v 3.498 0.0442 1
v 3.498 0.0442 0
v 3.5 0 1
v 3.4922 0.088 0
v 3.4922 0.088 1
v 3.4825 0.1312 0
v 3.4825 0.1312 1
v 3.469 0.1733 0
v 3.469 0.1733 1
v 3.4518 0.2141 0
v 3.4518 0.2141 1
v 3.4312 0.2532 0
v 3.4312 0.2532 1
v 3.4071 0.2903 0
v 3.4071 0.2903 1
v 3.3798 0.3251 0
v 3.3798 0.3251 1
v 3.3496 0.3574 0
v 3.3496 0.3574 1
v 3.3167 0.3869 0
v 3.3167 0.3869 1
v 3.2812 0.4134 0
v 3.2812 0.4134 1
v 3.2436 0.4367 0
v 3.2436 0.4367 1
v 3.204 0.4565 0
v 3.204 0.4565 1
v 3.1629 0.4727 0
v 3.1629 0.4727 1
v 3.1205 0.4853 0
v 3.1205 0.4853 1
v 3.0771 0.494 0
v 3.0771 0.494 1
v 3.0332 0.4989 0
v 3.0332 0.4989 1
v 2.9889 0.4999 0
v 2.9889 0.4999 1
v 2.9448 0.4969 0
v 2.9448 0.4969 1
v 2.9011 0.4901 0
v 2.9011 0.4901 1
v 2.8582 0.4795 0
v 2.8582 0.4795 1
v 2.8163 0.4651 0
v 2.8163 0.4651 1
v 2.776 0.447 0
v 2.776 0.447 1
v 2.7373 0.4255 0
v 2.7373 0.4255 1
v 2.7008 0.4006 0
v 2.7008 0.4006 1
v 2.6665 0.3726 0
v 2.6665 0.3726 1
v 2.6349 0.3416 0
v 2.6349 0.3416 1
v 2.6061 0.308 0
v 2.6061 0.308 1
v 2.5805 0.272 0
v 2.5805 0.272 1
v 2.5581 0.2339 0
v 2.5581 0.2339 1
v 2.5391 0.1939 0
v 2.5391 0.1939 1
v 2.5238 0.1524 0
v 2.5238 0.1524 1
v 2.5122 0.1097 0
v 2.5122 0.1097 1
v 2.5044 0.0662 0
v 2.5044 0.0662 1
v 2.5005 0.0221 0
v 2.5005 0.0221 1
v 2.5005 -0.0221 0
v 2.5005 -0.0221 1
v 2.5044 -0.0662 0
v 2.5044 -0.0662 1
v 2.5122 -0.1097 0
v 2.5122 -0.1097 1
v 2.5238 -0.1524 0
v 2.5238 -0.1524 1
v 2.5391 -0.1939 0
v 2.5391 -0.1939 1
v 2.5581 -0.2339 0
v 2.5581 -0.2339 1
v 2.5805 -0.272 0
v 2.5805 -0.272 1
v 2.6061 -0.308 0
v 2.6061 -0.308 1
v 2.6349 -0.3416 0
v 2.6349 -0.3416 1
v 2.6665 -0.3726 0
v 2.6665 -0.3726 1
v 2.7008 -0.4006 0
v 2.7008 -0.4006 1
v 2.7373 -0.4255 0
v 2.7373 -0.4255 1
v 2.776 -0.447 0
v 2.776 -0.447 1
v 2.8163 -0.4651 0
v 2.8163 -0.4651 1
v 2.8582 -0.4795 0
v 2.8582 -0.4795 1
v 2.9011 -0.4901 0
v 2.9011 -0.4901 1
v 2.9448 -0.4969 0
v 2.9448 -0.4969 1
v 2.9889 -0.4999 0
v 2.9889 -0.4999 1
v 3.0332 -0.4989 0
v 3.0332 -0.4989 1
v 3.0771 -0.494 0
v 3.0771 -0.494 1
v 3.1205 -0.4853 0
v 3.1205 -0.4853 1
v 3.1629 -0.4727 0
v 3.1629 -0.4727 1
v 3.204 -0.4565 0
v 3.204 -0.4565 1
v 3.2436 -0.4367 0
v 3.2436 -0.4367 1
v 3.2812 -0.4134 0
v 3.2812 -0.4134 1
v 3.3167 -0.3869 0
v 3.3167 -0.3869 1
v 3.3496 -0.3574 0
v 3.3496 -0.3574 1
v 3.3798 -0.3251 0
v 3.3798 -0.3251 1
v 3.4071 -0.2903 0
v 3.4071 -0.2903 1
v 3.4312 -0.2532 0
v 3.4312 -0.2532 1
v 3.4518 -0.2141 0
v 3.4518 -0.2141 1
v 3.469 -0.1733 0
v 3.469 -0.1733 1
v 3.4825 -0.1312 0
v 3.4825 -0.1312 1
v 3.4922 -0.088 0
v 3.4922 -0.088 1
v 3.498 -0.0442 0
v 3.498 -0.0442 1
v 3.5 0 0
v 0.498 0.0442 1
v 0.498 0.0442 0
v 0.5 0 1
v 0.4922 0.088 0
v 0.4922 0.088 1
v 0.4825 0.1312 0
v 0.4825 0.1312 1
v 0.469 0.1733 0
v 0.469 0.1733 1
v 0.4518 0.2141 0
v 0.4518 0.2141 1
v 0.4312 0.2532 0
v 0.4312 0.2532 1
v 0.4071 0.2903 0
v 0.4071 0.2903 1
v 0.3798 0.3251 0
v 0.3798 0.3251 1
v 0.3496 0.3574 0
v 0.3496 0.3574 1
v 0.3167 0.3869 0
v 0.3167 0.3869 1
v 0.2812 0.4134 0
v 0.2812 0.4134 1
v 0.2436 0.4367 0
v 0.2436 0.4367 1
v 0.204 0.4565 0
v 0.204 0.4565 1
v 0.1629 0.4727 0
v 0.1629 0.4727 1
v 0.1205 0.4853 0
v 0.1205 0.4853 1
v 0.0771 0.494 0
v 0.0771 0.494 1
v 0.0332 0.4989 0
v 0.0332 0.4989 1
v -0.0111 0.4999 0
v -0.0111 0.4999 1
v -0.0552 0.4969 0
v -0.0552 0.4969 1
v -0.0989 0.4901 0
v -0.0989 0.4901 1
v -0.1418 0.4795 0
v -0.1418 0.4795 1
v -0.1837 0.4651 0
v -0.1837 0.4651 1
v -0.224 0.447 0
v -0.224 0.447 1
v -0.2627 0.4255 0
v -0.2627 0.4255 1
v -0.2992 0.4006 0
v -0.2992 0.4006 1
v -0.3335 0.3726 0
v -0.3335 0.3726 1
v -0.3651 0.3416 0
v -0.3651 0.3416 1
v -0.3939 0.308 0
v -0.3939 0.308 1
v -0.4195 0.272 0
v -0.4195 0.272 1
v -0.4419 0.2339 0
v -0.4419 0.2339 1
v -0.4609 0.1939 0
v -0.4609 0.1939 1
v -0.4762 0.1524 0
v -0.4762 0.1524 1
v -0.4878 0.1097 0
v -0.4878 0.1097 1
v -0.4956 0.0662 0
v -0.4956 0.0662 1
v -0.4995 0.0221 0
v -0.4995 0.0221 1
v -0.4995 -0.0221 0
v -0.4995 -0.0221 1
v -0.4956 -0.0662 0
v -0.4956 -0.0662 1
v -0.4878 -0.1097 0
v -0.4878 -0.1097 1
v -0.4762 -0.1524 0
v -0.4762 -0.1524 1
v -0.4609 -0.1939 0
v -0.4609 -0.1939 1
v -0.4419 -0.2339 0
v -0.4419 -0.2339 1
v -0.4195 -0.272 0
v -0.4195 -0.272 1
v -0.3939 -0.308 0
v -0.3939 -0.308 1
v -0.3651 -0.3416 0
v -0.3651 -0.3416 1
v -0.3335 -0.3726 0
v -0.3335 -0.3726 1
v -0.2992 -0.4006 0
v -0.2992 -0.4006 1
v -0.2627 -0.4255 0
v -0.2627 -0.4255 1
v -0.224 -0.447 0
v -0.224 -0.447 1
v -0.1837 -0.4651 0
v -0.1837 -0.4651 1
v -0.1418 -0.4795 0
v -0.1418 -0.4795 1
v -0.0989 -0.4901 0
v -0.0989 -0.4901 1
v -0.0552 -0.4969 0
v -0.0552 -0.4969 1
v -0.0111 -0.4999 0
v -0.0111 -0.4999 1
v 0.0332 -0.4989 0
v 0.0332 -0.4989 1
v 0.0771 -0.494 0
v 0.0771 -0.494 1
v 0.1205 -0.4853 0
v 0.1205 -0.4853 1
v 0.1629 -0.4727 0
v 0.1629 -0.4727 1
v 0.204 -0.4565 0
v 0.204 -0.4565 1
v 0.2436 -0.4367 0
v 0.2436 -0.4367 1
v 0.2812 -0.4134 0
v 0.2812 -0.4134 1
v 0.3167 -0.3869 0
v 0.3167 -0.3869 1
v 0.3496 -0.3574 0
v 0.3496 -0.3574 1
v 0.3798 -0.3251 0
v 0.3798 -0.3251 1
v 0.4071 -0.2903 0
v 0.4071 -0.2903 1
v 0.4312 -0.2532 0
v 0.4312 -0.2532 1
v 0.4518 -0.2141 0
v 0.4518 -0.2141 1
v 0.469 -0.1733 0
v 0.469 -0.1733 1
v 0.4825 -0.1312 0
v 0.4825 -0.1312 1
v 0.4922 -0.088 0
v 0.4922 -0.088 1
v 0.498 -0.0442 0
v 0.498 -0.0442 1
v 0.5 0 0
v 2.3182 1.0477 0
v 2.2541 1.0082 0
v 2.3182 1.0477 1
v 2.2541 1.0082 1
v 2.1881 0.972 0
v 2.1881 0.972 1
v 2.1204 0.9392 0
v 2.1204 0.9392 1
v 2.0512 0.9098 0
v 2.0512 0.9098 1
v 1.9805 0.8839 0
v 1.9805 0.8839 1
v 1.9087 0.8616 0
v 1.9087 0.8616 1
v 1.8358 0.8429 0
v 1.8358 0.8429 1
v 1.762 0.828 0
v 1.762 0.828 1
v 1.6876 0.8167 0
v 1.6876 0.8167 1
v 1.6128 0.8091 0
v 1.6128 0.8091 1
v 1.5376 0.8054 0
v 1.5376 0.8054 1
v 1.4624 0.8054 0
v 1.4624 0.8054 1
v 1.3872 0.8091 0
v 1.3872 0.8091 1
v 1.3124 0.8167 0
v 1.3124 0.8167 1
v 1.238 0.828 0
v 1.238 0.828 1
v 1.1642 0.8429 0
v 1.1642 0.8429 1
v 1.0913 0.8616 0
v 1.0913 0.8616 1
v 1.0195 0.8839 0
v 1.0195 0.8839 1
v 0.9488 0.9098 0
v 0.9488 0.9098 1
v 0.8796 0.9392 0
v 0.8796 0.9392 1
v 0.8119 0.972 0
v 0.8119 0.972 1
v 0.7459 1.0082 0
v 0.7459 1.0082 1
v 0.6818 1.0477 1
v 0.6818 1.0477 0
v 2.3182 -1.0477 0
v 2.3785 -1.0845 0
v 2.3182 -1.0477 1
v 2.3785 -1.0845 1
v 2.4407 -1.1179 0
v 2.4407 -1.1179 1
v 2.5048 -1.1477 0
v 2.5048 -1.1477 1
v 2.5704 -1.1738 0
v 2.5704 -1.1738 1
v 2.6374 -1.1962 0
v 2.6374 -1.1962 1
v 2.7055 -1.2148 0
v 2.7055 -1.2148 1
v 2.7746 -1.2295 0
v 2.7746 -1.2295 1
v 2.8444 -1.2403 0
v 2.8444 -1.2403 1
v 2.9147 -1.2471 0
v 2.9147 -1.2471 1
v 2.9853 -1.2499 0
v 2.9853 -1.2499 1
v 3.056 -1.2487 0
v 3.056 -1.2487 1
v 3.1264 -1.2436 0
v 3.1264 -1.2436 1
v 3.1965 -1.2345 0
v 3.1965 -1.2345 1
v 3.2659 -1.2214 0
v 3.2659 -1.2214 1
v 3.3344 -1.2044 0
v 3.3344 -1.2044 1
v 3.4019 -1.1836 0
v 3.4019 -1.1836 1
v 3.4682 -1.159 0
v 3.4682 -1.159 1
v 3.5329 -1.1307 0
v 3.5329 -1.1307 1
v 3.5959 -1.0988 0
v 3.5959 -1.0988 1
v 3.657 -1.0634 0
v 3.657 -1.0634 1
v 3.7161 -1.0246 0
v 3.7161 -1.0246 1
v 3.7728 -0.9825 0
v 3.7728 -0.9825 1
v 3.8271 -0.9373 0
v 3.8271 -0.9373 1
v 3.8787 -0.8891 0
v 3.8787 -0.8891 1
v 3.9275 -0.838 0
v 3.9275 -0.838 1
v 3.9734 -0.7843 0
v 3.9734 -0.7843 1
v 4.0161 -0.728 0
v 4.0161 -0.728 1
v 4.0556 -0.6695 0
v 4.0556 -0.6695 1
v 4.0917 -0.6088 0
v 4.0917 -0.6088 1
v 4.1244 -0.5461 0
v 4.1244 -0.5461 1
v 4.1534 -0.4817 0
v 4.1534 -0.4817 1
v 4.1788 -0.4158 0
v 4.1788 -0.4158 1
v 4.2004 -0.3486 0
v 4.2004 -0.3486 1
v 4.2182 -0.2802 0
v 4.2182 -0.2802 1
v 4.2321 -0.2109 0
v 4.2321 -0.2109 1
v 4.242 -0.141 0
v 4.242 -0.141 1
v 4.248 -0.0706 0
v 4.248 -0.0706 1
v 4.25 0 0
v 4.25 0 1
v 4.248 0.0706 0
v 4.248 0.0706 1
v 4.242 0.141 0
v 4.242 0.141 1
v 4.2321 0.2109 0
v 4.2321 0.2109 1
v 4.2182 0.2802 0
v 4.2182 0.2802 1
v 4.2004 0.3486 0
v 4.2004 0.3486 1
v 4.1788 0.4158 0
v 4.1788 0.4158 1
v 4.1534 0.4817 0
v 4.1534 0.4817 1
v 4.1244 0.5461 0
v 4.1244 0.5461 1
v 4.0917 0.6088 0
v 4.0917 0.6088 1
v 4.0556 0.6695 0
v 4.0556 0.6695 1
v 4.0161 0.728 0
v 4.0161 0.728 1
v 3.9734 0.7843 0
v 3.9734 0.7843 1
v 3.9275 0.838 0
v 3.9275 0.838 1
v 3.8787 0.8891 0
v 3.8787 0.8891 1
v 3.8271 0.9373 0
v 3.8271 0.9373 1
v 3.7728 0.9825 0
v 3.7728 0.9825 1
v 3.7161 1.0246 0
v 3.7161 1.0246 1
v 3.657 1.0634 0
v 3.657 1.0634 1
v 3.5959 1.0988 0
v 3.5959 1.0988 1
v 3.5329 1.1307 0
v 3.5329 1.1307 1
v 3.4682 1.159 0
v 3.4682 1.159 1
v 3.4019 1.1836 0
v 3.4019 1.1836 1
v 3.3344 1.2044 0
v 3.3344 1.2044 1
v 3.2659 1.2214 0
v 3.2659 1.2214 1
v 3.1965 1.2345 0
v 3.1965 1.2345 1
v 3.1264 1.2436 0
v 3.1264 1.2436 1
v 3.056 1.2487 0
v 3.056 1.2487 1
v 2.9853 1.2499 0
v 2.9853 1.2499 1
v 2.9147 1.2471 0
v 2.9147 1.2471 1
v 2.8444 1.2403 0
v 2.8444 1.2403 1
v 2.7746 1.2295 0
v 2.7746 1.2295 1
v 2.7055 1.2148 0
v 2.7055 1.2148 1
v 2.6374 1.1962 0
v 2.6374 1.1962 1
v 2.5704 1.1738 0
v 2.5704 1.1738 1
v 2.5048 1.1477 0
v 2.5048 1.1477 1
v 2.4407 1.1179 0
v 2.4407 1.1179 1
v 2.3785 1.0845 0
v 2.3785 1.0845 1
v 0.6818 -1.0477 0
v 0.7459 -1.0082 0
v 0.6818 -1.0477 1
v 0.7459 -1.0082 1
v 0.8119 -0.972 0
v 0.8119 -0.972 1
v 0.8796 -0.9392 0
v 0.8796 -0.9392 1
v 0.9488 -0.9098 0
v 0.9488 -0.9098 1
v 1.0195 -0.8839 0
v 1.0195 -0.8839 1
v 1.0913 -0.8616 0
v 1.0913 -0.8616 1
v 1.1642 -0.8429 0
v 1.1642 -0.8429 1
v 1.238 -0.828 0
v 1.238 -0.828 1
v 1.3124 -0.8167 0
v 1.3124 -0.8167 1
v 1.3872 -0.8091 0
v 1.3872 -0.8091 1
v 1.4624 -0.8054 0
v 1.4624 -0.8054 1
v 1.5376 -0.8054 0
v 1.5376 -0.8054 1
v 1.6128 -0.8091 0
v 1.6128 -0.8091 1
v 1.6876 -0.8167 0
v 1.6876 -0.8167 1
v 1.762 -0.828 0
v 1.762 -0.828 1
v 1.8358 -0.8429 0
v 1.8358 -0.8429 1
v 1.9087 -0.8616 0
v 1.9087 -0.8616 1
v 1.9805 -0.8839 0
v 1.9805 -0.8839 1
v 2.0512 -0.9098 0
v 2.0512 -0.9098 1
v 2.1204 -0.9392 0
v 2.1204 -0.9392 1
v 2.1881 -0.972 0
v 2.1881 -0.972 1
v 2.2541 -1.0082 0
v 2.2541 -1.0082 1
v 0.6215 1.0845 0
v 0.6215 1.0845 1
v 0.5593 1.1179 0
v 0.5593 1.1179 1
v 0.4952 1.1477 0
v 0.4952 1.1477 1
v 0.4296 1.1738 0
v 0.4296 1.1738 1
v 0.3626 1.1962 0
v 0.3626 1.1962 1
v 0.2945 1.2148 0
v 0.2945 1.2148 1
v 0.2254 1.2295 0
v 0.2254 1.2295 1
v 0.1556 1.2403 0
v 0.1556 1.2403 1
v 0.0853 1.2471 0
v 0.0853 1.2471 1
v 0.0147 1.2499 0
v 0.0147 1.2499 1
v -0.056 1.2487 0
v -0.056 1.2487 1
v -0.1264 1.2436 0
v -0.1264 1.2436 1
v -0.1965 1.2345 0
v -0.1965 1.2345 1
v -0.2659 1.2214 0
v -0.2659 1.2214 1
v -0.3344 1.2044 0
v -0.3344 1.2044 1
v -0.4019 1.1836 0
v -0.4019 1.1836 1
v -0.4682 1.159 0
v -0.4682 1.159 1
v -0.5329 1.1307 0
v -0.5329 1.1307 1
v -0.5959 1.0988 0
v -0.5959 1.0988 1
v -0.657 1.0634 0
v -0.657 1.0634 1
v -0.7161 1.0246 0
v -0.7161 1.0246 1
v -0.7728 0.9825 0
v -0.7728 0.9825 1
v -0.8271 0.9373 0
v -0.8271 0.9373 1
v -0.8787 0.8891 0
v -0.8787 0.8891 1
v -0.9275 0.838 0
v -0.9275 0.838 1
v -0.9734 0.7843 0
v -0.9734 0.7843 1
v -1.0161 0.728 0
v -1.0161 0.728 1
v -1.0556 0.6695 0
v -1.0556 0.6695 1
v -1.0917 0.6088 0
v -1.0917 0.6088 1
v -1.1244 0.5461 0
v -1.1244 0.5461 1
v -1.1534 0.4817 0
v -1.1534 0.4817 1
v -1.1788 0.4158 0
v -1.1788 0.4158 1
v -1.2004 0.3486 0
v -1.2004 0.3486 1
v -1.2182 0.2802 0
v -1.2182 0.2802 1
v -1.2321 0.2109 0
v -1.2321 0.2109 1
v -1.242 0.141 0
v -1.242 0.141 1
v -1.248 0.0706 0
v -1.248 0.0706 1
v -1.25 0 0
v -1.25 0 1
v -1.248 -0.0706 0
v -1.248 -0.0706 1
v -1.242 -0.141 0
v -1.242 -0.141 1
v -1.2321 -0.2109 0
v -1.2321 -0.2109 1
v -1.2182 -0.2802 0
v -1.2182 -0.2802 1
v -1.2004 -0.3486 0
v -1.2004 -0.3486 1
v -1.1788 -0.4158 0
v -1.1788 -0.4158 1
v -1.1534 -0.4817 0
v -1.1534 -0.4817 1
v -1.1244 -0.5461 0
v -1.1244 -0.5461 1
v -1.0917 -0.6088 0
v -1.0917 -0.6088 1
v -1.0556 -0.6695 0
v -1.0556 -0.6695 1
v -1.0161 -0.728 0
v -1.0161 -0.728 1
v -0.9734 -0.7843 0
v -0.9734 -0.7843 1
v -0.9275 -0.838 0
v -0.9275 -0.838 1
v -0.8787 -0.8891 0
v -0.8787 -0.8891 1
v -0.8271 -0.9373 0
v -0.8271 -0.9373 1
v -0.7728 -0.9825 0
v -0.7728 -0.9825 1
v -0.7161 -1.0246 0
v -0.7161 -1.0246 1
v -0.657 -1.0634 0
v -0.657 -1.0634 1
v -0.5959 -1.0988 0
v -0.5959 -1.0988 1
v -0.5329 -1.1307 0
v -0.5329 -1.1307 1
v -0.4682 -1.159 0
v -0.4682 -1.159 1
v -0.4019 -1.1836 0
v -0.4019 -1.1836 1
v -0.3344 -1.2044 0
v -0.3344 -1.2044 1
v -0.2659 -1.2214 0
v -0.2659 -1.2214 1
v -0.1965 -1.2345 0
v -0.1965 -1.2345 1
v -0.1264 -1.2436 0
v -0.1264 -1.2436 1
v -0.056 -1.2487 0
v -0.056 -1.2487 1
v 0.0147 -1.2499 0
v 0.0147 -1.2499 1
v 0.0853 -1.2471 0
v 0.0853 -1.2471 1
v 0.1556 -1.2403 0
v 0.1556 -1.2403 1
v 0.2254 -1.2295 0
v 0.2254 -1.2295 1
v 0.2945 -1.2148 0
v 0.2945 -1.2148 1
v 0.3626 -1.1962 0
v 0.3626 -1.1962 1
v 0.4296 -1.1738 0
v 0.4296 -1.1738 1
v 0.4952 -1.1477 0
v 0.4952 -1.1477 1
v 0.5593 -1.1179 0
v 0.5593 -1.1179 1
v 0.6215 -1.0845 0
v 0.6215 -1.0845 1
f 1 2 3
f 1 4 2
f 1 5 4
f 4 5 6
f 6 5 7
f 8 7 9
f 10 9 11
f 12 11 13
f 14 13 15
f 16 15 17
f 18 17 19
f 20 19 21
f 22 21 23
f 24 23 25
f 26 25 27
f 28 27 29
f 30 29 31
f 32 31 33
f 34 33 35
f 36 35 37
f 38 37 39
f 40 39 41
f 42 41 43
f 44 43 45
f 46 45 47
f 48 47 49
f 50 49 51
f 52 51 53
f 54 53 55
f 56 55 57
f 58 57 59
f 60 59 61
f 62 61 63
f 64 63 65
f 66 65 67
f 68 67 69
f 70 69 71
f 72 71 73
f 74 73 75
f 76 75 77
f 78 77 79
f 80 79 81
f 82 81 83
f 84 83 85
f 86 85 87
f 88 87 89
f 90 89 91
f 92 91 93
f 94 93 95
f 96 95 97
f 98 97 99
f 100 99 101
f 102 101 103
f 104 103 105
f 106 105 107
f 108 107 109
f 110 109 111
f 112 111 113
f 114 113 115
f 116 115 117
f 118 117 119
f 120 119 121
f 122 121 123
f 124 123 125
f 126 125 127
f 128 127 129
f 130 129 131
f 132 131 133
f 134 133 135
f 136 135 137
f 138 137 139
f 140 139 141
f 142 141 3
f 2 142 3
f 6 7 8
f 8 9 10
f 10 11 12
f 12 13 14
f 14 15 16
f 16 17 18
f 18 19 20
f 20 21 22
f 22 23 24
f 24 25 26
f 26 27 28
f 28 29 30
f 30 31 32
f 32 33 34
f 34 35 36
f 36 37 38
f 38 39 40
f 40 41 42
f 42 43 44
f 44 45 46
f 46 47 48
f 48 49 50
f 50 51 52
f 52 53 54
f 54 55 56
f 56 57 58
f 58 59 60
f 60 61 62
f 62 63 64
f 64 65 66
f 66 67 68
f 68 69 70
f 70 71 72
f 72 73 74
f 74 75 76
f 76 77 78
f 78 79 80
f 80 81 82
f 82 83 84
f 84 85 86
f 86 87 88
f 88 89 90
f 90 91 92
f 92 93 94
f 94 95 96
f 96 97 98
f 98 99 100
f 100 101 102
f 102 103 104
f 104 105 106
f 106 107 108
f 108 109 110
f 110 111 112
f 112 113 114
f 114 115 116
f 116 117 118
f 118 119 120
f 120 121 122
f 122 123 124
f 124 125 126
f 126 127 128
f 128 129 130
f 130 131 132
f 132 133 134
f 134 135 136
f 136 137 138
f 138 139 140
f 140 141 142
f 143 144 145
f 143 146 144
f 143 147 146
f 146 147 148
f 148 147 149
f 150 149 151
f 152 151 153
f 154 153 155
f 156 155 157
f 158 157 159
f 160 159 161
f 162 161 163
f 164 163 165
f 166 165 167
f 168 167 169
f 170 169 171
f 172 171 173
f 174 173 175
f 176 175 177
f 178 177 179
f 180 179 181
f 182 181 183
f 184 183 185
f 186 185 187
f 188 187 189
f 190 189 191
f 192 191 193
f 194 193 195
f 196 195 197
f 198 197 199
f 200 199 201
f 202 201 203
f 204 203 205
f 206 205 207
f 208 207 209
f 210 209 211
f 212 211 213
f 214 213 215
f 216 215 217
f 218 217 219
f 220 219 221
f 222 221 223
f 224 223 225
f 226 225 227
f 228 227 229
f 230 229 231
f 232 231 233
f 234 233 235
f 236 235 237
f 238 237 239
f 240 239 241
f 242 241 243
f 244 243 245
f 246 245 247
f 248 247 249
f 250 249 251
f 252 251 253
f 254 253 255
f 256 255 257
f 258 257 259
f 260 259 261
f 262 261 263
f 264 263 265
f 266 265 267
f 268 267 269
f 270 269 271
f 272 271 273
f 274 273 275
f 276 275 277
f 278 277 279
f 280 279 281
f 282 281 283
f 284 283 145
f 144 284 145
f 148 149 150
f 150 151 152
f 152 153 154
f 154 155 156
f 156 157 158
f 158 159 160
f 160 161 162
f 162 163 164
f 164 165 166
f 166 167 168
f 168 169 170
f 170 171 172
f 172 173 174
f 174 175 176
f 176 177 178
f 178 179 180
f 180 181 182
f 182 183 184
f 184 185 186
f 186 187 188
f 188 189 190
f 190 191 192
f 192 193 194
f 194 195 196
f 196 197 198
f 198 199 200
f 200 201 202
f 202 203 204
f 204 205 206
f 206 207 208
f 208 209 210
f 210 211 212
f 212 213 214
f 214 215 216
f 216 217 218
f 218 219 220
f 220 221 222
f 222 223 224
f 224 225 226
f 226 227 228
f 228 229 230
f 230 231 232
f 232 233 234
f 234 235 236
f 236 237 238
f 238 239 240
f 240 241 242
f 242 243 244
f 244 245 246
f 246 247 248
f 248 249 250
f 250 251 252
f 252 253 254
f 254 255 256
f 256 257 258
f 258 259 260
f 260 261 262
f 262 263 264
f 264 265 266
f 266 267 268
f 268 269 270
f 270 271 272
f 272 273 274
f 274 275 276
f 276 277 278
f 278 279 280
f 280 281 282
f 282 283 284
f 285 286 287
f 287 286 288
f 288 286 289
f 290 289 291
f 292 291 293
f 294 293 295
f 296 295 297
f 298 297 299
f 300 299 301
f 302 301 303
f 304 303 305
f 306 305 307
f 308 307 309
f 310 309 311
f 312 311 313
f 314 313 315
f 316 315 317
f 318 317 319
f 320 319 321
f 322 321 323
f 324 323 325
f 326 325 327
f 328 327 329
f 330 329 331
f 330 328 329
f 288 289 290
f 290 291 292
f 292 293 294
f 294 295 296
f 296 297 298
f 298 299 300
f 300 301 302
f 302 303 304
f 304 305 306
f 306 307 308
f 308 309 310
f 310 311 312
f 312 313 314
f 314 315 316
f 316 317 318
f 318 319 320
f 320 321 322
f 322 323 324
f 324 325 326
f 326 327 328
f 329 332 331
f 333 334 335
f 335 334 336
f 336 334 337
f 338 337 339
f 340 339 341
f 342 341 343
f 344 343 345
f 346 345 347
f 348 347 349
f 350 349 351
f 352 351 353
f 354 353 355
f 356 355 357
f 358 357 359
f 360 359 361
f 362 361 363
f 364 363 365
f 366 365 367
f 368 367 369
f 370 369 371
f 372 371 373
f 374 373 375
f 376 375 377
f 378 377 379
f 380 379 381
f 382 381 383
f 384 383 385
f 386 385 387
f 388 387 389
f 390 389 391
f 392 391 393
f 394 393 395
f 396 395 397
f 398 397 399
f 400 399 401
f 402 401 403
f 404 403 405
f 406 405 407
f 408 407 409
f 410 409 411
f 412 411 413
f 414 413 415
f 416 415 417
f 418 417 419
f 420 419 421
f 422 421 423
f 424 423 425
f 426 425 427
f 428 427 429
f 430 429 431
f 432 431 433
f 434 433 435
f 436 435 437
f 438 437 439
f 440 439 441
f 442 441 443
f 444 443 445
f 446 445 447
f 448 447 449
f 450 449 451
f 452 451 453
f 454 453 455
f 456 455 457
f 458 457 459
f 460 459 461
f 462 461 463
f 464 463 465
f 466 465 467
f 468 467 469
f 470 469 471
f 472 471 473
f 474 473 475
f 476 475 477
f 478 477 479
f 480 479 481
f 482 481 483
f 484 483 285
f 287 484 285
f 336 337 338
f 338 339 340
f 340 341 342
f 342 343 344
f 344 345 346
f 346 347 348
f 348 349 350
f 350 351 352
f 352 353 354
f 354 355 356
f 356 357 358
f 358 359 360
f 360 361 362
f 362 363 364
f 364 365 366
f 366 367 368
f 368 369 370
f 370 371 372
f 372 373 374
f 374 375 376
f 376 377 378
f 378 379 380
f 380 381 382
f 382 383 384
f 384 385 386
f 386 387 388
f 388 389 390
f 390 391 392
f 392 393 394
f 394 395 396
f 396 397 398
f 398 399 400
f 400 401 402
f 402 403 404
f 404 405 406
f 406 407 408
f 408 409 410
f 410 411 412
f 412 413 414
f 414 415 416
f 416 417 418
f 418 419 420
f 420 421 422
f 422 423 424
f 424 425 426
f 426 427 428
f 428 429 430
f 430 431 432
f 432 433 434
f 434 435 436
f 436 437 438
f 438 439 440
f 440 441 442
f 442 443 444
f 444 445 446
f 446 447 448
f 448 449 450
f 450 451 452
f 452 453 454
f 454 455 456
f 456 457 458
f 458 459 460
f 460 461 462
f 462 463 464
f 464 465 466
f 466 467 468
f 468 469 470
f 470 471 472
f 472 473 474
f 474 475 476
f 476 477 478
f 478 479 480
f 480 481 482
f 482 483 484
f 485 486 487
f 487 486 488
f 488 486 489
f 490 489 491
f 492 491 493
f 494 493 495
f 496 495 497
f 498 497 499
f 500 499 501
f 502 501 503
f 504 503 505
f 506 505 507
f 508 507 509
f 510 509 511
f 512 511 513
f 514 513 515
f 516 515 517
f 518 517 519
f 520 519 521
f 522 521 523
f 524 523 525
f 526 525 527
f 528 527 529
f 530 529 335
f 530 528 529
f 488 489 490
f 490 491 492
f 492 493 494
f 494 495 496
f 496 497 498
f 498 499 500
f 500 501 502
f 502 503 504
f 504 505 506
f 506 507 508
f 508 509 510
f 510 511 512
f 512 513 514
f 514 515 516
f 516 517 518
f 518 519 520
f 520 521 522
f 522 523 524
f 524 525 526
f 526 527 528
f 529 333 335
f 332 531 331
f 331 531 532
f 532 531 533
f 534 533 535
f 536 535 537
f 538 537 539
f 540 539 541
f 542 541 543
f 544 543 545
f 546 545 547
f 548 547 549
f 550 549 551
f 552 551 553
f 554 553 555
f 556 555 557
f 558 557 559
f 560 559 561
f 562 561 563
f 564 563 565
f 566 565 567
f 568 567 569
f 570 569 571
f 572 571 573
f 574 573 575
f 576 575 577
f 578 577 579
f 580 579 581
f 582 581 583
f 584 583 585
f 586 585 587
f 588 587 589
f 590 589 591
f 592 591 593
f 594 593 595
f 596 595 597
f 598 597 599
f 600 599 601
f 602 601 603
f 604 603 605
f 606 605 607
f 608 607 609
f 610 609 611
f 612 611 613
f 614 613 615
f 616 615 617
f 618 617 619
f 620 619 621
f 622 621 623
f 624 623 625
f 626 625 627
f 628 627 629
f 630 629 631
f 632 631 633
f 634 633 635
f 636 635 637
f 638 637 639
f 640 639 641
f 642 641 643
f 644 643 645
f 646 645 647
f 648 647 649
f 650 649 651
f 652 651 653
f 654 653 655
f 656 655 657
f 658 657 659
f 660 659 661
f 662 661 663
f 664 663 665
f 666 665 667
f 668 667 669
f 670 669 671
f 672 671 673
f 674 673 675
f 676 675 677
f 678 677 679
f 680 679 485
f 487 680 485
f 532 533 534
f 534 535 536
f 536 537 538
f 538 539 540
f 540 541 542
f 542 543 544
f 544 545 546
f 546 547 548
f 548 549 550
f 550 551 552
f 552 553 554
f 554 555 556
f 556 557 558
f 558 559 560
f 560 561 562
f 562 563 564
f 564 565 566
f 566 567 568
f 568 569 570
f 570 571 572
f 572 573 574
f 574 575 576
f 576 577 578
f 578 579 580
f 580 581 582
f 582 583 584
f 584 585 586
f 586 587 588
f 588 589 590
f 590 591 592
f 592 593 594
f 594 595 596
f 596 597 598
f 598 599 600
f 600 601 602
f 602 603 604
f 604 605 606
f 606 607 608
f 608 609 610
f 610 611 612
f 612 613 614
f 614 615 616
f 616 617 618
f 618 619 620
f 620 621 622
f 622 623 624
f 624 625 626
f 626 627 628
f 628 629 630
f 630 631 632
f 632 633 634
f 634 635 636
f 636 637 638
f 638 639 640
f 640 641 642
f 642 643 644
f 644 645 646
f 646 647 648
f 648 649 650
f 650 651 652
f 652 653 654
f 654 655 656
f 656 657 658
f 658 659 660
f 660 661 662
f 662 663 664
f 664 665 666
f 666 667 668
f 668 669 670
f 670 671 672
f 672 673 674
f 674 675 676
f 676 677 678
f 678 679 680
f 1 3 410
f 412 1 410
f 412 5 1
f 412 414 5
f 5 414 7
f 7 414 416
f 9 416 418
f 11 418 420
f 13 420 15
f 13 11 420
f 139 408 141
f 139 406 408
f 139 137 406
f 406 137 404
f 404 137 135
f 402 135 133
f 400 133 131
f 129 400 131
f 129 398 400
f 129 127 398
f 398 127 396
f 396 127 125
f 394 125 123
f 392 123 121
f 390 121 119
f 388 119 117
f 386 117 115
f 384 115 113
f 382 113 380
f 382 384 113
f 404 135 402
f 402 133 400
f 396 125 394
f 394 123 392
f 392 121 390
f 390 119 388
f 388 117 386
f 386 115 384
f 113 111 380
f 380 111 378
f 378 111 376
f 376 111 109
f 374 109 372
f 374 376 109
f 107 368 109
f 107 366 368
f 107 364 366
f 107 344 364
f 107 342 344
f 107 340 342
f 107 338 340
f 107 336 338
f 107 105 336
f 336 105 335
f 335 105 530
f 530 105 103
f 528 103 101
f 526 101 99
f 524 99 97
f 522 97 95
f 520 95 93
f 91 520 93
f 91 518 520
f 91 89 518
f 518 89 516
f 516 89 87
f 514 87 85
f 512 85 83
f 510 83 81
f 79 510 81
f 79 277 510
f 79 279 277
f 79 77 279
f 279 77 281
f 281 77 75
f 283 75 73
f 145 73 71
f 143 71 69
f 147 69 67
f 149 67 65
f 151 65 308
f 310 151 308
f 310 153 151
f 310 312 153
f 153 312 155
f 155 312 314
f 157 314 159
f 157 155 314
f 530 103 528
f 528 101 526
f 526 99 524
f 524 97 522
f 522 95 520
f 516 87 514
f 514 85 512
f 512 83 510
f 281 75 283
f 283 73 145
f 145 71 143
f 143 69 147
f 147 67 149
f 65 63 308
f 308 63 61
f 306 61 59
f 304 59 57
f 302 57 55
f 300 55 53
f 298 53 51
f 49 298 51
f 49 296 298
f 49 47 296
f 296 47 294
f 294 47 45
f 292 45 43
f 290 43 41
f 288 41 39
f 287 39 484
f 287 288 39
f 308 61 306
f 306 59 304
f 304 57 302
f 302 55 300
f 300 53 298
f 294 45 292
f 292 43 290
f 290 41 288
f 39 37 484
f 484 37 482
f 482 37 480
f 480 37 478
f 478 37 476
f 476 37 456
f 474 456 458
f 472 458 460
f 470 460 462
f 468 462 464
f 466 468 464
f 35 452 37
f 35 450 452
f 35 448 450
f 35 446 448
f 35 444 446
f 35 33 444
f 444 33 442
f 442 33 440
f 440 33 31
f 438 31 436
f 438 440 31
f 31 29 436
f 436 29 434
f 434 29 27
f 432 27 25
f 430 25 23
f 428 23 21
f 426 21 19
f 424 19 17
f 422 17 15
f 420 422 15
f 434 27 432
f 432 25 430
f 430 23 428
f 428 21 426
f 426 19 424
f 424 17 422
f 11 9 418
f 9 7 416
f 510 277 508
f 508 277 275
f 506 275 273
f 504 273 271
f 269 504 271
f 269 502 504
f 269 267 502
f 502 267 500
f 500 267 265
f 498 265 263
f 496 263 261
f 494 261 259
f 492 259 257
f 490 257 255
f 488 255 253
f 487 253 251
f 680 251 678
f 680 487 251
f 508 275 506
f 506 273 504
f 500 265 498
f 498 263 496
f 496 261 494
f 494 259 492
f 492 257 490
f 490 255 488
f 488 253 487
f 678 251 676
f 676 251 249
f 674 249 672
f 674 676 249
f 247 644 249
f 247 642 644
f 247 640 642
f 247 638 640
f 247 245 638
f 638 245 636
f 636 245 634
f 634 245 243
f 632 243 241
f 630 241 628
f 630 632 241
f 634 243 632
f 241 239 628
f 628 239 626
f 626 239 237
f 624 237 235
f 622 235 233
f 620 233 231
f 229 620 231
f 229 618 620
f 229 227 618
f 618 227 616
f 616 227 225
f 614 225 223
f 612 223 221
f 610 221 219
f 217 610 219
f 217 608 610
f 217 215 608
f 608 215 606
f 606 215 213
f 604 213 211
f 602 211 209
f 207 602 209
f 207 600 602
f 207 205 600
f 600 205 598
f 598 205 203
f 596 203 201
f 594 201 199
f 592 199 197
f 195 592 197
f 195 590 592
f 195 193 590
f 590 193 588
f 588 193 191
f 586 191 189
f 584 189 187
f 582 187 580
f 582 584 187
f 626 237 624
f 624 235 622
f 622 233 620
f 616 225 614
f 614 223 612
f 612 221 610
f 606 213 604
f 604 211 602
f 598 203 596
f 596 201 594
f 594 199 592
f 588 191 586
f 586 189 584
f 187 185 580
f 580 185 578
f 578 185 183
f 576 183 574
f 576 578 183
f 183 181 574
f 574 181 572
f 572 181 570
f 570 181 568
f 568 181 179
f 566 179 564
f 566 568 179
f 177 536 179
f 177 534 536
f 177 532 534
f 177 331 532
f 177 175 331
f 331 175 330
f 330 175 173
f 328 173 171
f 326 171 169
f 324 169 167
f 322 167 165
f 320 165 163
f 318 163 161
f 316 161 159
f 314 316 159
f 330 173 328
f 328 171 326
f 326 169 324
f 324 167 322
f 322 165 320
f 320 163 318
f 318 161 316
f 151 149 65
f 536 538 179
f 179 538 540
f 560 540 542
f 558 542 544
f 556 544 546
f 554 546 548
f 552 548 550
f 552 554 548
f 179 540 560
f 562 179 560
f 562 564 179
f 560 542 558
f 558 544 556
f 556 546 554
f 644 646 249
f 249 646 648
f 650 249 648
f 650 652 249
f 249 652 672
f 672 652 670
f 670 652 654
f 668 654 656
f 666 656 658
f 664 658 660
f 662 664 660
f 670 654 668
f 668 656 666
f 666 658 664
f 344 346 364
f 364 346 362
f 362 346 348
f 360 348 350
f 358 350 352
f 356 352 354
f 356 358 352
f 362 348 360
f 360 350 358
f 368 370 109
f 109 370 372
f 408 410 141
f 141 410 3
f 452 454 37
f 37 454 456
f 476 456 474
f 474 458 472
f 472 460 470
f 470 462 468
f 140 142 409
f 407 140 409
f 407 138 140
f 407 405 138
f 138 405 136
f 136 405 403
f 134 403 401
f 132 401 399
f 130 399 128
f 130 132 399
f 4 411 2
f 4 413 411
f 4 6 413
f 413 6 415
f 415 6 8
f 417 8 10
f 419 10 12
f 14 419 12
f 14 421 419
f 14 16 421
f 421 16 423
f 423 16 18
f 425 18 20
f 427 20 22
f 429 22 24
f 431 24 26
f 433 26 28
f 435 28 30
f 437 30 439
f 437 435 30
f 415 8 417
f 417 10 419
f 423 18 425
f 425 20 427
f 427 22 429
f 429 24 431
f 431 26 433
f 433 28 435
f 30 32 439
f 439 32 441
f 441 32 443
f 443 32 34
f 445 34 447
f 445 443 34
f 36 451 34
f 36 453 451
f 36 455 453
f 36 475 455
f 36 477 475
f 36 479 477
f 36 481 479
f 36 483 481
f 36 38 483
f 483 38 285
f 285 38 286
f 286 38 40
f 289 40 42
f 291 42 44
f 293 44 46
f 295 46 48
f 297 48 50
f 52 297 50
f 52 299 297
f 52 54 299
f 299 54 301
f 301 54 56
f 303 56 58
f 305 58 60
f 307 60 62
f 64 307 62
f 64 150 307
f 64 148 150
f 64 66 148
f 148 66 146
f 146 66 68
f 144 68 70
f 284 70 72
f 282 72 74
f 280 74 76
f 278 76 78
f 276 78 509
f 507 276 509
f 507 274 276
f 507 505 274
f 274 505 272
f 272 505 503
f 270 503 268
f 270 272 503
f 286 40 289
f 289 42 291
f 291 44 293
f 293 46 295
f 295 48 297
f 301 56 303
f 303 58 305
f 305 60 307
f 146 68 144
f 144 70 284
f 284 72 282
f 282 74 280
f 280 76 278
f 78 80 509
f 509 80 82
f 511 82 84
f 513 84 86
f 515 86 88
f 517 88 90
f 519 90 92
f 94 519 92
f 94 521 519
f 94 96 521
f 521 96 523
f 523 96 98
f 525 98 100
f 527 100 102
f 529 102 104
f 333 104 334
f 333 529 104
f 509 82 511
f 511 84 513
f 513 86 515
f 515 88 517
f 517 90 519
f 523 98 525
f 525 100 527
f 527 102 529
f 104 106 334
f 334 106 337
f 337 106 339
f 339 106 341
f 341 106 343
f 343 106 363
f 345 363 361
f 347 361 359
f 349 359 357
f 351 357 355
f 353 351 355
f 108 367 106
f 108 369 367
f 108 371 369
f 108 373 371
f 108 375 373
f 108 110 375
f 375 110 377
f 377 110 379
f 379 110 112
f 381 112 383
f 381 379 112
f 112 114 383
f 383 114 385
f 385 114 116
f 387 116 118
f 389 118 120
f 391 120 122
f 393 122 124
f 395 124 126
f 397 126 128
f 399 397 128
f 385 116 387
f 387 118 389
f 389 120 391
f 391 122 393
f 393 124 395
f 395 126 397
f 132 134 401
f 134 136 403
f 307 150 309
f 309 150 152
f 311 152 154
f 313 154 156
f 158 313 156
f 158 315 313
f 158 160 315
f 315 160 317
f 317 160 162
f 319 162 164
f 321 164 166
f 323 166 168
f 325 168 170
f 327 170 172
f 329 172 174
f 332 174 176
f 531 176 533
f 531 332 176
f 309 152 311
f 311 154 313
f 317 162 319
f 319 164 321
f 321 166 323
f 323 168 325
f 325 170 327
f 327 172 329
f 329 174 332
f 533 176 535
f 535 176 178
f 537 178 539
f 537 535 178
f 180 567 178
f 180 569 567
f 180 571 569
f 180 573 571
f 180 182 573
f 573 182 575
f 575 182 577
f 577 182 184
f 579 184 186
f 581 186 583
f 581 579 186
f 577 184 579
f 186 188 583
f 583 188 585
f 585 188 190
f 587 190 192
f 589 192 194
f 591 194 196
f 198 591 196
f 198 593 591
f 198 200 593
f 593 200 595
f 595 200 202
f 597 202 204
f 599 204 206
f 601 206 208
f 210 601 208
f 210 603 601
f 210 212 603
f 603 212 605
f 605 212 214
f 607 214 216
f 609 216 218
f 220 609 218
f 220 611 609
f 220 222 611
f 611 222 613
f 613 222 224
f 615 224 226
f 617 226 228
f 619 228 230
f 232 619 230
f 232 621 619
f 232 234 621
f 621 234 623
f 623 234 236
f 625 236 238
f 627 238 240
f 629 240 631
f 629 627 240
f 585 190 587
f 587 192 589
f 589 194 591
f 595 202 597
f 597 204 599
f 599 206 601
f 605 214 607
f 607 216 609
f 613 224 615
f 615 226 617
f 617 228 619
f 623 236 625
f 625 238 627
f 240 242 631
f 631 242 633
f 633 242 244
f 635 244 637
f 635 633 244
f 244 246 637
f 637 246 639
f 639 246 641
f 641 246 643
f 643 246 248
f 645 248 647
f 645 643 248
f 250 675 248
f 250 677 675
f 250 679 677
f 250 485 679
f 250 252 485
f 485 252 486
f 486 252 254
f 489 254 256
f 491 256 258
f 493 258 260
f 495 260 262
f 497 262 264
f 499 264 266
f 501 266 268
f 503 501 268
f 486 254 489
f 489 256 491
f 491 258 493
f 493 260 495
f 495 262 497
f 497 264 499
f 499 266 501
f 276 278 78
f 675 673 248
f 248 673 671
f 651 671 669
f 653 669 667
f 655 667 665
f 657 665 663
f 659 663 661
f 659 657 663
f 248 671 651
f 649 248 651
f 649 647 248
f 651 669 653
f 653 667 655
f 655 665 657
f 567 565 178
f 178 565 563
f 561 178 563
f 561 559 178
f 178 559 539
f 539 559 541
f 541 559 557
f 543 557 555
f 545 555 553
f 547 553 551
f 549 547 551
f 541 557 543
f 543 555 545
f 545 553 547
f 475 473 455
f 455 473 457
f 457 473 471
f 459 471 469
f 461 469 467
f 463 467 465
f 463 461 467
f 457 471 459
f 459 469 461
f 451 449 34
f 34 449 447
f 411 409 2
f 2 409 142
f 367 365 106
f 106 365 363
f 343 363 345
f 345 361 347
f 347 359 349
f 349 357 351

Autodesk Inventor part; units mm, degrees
ref_plane "YZ Plane" through (0, 0, 0) normal (1, 0, 0) x (0, 1, 0)
ref_plane "XZ Plane" through (0, 0, 0) normal (0, 1, 0) x (-1, 0, 0)
ref_plane "XY Plane" through (0, 0, 0) normal (0, 0, 1) x (1, 0, 0)
sketch "Body" plane through (0, 0, 0) normal (0, 0, 1) x (1, 0, 0)
  circle A0 centre (0, 0) radius 0.5
  line L0 (0, 0) -> (3, 0) construction
  circle A1 centre (3, 0) radius 0.5
  arc A2 (0.6818, 1.0477) -> (0.6818, -1.0477) centre (0, 0) ccw
  arc A3 (2.3182, -1.0477) -> (2.3182, 1.0477) centre (3, 0) ccw
  arc A4 (0.6818, 1.0477) -> (2.3182, 1.0477) centre (1.5, 2.3049) ccw
  arc A5 (2.3182, -1.0477) -> (0.6818, -1.0477) centre (1.5, -2.3049) ccw
  dimension "d0" = 1
  dimension "d1" = 3
  dimension "d2" = 1
  dimension "d3" = 2.5
  dimension "d5" = 1.5
extrude "BodyFeature" add sketch "Body" along normal blind 1
properties part number "ChainLink"
